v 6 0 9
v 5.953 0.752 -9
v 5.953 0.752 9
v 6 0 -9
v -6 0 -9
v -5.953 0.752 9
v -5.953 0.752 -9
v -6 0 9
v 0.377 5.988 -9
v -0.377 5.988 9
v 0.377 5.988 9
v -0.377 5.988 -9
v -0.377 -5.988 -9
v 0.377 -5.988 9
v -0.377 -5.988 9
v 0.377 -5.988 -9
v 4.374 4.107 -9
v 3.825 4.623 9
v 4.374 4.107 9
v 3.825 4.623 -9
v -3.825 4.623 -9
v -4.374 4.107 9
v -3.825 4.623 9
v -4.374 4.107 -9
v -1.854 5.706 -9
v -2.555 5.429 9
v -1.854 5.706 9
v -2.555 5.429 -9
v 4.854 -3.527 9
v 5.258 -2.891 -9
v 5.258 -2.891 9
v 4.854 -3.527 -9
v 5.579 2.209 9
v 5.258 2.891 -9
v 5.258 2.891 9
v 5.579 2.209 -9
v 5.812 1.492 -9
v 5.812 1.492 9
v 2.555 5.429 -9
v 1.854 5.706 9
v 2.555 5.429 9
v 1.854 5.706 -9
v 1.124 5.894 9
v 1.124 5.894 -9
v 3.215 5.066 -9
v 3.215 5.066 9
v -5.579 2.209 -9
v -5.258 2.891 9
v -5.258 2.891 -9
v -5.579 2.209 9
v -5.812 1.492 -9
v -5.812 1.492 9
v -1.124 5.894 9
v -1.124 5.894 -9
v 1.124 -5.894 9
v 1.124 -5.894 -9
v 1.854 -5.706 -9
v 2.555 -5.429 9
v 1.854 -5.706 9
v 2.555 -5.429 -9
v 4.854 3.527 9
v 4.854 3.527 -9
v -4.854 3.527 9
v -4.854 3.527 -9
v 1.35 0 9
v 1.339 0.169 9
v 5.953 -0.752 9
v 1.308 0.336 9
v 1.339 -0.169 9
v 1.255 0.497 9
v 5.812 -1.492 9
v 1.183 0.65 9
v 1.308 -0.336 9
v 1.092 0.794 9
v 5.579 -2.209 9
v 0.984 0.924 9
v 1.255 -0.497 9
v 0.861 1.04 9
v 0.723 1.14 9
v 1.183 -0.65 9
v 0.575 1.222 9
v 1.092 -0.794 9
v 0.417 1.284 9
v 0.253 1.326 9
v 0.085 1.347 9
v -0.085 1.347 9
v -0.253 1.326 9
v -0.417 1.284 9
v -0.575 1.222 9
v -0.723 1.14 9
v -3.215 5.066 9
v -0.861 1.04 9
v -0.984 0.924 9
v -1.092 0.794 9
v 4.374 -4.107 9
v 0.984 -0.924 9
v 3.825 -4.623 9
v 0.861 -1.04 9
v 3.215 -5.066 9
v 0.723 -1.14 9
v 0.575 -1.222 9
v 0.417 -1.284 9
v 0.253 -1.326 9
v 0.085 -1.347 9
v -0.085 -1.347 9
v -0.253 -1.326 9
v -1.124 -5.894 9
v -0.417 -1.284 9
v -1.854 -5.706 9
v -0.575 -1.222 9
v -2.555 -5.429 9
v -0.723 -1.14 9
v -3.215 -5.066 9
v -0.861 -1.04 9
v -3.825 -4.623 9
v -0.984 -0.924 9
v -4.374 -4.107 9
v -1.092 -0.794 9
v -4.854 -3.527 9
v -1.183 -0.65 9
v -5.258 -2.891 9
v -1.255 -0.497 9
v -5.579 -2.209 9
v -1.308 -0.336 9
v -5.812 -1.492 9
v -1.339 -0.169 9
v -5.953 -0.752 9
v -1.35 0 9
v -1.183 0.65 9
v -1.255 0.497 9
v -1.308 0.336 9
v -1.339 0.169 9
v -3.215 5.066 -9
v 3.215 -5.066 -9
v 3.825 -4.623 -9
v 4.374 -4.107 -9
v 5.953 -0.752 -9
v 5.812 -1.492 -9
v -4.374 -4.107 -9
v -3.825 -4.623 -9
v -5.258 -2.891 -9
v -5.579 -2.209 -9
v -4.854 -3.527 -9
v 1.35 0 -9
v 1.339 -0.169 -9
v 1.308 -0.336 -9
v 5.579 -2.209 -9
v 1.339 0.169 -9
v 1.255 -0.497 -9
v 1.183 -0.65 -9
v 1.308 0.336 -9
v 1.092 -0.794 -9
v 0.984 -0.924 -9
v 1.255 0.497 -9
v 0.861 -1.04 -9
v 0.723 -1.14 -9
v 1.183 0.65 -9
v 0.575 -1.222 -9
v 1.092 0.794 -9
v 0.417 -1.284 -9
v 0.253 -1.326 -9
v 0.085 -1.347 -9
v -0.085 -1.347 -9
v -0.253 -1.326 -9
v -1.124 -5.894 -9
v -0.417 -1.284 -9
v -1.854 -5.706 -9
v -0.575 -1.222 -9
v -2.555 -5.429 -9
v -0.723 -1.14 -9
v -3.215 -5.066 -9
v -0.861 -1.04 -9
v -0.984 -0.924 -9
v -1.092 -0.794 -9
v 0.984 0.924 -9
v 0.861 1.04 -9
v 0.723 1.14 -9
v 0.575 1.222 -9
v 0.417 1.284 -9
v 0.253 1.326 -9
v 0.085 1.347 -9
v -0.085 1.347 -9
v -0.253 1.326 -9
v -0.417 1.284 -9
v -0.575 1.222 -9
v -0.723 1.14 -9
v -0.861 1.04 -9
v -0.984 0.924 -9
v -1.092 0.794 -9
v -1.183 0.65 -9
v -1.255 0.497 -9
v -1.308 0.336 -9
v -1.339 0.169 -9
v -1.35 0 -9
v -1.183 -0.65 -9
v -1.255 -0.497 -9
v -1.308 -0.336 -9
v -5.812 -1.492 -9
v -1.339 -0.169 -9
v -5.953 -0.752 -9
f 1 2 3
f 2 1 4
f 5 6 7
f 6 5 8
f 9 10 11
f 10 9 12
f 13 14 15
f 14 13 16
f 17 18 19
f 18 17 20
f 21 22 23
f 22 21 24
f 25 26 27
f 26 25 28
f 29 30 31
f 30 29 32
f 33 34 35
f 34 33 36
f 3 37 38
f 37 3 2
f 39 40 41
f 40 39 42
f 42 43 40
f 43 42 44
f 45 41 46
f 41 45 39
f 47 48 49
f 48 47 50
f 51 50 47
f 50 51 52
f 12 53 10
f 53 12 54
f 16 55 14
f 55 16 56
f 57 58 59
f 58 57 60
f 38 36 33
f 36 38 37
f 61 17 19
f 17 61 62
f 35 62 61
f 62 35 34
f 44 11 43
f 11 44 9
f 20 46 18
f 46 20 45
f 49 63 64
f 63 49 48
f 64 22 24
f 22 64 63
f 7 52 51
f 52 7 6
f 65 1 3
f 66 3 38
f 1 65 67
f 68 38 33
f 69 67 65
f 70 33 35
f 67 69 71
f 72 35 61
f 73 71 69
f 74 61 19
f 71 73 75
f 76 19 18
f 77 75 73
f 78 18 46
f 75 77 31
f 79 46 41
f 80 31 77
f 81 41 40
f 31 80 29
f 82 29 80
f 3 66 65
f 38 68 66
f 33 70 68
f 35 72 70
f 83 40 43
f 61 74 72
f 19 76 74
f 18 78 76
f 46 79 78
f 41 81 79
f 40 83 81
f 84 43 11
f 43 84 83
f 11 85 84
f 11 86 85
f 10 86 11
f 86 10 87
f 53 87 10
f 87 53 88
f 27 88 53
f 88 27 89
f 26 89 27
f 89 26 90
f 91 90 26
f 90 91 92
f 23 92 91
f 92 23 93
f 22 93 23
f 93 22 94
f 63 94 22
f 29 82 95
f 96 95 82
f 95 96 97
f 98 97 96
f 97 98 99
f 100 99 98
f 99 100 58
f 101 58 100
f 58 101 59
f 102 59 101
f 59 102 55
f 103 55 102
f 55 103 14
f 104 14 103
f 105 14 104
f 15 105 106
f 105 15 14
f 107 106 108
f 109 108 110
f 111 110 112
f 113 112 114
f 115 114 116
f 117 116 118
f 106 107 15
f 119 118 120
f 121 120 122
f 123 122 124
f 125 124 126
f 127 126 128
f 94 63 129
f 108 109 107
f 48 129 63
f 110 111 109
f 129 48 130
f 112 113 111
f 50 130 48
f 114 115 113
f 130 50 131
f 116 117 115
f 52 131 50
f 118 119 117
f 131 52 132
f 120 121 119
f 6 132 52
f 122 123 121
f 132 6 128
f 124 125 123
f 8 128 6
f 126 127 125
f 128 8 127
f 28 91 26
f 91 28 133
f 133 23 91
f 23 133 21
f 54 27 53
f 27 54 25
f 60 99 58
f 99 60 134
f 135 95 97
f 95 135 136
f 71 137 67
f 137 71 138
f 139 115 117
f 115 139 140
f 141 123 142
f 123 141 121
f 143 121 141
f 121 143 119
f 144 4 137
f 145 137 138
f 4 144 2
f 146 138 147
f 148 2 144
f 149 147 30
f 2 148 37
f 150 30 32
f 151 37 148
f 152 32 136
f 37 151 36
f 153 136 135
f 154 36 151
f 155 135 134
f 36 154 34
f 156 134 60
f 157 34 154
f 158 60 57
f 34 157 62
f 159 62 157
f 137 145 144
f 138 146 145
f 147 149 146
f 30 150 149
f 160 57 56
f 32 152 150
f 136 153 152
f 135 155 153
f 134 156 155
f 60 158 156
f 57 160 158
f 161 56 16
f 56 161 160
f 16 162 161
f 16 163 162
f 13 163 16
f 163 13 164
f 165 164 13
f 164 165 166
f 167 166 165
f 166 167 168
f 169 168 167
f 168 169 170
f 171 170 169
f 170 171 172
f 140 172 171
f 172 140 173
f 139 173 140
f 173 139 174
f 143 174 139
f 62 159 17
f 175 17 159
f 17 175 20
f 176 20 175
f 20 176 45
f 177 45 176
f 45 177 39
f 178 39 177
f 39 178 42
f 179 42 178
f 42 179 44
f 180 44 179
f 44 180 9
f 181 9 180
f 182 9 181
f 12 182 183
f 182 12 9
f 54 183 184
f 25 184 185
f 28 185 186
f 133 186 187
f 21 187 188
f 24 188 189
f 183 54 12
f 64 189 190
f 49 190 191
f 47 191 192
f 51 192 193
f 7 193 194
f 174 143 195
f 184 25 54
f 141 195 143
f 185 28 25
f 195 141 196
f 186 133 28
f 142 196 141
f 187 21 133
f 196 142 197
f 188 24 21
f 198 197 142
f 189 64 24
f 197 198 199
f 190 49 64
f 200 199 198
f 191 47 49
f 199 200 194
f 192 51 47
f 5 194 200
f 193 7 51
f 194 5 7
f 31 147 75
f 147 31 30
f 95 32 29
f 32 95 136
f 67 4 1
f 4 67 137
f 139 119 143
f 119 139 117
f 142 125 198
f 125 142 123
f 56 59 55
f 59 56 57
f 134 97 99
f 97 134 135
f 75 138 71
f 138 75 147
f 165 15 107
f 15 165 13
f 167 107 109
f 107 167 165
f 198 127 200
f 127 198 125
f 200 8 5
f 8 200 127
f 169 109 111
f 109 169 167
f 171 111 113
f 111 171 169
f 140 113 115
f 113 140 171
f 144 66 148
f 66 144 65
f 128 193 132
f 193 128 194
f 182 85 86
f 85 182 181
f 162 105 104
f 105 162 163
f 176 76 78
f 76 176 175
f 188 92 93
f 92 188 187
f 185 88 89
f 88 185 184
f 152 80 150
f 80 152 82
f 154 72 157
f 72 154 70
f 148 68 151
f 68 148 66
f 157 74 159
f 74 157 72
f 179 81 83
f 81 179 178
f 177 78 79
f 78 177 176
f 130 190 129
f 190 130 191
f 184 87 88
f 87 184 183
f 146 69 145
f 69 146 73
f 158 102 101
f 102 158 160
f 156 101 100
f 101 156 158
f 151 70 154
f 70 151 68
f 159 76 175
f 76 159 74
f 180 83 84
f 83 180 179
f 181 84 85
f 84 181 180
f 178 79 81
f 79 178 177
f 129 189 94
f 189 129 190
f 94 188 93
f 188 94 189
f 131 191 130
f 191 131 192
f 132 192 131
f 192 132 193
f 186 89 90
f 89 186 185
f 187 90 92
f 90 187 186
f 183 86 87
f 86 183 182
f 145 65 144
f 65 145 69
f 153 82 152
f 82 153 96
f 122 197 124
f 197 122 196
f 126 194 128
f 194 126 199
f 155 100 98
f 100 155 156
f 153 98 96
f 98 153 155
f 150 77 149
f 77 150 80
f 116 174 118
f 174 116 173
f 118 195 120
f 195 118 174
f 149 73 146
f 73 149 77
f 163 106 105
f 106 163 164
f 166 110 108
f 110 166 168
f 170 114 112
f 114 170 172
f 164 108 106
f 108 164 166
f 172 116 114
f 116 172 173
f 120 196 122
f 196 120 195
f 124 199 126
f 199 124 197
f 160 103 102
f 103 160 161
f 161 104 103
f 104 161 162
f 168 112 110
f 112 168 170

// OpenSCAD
$fn = 50;


difference() {
	union() {
		translate(v = [0, 0, -9.0000000000]) {
			cylinder(h = 18, r = 6.0000000000);
		}
	}
	union() {
		translate(v = [0, 0, -100.0000000000]) {
			cylinder(h = 200, r = 1.3500000000);
		}
	}
}
